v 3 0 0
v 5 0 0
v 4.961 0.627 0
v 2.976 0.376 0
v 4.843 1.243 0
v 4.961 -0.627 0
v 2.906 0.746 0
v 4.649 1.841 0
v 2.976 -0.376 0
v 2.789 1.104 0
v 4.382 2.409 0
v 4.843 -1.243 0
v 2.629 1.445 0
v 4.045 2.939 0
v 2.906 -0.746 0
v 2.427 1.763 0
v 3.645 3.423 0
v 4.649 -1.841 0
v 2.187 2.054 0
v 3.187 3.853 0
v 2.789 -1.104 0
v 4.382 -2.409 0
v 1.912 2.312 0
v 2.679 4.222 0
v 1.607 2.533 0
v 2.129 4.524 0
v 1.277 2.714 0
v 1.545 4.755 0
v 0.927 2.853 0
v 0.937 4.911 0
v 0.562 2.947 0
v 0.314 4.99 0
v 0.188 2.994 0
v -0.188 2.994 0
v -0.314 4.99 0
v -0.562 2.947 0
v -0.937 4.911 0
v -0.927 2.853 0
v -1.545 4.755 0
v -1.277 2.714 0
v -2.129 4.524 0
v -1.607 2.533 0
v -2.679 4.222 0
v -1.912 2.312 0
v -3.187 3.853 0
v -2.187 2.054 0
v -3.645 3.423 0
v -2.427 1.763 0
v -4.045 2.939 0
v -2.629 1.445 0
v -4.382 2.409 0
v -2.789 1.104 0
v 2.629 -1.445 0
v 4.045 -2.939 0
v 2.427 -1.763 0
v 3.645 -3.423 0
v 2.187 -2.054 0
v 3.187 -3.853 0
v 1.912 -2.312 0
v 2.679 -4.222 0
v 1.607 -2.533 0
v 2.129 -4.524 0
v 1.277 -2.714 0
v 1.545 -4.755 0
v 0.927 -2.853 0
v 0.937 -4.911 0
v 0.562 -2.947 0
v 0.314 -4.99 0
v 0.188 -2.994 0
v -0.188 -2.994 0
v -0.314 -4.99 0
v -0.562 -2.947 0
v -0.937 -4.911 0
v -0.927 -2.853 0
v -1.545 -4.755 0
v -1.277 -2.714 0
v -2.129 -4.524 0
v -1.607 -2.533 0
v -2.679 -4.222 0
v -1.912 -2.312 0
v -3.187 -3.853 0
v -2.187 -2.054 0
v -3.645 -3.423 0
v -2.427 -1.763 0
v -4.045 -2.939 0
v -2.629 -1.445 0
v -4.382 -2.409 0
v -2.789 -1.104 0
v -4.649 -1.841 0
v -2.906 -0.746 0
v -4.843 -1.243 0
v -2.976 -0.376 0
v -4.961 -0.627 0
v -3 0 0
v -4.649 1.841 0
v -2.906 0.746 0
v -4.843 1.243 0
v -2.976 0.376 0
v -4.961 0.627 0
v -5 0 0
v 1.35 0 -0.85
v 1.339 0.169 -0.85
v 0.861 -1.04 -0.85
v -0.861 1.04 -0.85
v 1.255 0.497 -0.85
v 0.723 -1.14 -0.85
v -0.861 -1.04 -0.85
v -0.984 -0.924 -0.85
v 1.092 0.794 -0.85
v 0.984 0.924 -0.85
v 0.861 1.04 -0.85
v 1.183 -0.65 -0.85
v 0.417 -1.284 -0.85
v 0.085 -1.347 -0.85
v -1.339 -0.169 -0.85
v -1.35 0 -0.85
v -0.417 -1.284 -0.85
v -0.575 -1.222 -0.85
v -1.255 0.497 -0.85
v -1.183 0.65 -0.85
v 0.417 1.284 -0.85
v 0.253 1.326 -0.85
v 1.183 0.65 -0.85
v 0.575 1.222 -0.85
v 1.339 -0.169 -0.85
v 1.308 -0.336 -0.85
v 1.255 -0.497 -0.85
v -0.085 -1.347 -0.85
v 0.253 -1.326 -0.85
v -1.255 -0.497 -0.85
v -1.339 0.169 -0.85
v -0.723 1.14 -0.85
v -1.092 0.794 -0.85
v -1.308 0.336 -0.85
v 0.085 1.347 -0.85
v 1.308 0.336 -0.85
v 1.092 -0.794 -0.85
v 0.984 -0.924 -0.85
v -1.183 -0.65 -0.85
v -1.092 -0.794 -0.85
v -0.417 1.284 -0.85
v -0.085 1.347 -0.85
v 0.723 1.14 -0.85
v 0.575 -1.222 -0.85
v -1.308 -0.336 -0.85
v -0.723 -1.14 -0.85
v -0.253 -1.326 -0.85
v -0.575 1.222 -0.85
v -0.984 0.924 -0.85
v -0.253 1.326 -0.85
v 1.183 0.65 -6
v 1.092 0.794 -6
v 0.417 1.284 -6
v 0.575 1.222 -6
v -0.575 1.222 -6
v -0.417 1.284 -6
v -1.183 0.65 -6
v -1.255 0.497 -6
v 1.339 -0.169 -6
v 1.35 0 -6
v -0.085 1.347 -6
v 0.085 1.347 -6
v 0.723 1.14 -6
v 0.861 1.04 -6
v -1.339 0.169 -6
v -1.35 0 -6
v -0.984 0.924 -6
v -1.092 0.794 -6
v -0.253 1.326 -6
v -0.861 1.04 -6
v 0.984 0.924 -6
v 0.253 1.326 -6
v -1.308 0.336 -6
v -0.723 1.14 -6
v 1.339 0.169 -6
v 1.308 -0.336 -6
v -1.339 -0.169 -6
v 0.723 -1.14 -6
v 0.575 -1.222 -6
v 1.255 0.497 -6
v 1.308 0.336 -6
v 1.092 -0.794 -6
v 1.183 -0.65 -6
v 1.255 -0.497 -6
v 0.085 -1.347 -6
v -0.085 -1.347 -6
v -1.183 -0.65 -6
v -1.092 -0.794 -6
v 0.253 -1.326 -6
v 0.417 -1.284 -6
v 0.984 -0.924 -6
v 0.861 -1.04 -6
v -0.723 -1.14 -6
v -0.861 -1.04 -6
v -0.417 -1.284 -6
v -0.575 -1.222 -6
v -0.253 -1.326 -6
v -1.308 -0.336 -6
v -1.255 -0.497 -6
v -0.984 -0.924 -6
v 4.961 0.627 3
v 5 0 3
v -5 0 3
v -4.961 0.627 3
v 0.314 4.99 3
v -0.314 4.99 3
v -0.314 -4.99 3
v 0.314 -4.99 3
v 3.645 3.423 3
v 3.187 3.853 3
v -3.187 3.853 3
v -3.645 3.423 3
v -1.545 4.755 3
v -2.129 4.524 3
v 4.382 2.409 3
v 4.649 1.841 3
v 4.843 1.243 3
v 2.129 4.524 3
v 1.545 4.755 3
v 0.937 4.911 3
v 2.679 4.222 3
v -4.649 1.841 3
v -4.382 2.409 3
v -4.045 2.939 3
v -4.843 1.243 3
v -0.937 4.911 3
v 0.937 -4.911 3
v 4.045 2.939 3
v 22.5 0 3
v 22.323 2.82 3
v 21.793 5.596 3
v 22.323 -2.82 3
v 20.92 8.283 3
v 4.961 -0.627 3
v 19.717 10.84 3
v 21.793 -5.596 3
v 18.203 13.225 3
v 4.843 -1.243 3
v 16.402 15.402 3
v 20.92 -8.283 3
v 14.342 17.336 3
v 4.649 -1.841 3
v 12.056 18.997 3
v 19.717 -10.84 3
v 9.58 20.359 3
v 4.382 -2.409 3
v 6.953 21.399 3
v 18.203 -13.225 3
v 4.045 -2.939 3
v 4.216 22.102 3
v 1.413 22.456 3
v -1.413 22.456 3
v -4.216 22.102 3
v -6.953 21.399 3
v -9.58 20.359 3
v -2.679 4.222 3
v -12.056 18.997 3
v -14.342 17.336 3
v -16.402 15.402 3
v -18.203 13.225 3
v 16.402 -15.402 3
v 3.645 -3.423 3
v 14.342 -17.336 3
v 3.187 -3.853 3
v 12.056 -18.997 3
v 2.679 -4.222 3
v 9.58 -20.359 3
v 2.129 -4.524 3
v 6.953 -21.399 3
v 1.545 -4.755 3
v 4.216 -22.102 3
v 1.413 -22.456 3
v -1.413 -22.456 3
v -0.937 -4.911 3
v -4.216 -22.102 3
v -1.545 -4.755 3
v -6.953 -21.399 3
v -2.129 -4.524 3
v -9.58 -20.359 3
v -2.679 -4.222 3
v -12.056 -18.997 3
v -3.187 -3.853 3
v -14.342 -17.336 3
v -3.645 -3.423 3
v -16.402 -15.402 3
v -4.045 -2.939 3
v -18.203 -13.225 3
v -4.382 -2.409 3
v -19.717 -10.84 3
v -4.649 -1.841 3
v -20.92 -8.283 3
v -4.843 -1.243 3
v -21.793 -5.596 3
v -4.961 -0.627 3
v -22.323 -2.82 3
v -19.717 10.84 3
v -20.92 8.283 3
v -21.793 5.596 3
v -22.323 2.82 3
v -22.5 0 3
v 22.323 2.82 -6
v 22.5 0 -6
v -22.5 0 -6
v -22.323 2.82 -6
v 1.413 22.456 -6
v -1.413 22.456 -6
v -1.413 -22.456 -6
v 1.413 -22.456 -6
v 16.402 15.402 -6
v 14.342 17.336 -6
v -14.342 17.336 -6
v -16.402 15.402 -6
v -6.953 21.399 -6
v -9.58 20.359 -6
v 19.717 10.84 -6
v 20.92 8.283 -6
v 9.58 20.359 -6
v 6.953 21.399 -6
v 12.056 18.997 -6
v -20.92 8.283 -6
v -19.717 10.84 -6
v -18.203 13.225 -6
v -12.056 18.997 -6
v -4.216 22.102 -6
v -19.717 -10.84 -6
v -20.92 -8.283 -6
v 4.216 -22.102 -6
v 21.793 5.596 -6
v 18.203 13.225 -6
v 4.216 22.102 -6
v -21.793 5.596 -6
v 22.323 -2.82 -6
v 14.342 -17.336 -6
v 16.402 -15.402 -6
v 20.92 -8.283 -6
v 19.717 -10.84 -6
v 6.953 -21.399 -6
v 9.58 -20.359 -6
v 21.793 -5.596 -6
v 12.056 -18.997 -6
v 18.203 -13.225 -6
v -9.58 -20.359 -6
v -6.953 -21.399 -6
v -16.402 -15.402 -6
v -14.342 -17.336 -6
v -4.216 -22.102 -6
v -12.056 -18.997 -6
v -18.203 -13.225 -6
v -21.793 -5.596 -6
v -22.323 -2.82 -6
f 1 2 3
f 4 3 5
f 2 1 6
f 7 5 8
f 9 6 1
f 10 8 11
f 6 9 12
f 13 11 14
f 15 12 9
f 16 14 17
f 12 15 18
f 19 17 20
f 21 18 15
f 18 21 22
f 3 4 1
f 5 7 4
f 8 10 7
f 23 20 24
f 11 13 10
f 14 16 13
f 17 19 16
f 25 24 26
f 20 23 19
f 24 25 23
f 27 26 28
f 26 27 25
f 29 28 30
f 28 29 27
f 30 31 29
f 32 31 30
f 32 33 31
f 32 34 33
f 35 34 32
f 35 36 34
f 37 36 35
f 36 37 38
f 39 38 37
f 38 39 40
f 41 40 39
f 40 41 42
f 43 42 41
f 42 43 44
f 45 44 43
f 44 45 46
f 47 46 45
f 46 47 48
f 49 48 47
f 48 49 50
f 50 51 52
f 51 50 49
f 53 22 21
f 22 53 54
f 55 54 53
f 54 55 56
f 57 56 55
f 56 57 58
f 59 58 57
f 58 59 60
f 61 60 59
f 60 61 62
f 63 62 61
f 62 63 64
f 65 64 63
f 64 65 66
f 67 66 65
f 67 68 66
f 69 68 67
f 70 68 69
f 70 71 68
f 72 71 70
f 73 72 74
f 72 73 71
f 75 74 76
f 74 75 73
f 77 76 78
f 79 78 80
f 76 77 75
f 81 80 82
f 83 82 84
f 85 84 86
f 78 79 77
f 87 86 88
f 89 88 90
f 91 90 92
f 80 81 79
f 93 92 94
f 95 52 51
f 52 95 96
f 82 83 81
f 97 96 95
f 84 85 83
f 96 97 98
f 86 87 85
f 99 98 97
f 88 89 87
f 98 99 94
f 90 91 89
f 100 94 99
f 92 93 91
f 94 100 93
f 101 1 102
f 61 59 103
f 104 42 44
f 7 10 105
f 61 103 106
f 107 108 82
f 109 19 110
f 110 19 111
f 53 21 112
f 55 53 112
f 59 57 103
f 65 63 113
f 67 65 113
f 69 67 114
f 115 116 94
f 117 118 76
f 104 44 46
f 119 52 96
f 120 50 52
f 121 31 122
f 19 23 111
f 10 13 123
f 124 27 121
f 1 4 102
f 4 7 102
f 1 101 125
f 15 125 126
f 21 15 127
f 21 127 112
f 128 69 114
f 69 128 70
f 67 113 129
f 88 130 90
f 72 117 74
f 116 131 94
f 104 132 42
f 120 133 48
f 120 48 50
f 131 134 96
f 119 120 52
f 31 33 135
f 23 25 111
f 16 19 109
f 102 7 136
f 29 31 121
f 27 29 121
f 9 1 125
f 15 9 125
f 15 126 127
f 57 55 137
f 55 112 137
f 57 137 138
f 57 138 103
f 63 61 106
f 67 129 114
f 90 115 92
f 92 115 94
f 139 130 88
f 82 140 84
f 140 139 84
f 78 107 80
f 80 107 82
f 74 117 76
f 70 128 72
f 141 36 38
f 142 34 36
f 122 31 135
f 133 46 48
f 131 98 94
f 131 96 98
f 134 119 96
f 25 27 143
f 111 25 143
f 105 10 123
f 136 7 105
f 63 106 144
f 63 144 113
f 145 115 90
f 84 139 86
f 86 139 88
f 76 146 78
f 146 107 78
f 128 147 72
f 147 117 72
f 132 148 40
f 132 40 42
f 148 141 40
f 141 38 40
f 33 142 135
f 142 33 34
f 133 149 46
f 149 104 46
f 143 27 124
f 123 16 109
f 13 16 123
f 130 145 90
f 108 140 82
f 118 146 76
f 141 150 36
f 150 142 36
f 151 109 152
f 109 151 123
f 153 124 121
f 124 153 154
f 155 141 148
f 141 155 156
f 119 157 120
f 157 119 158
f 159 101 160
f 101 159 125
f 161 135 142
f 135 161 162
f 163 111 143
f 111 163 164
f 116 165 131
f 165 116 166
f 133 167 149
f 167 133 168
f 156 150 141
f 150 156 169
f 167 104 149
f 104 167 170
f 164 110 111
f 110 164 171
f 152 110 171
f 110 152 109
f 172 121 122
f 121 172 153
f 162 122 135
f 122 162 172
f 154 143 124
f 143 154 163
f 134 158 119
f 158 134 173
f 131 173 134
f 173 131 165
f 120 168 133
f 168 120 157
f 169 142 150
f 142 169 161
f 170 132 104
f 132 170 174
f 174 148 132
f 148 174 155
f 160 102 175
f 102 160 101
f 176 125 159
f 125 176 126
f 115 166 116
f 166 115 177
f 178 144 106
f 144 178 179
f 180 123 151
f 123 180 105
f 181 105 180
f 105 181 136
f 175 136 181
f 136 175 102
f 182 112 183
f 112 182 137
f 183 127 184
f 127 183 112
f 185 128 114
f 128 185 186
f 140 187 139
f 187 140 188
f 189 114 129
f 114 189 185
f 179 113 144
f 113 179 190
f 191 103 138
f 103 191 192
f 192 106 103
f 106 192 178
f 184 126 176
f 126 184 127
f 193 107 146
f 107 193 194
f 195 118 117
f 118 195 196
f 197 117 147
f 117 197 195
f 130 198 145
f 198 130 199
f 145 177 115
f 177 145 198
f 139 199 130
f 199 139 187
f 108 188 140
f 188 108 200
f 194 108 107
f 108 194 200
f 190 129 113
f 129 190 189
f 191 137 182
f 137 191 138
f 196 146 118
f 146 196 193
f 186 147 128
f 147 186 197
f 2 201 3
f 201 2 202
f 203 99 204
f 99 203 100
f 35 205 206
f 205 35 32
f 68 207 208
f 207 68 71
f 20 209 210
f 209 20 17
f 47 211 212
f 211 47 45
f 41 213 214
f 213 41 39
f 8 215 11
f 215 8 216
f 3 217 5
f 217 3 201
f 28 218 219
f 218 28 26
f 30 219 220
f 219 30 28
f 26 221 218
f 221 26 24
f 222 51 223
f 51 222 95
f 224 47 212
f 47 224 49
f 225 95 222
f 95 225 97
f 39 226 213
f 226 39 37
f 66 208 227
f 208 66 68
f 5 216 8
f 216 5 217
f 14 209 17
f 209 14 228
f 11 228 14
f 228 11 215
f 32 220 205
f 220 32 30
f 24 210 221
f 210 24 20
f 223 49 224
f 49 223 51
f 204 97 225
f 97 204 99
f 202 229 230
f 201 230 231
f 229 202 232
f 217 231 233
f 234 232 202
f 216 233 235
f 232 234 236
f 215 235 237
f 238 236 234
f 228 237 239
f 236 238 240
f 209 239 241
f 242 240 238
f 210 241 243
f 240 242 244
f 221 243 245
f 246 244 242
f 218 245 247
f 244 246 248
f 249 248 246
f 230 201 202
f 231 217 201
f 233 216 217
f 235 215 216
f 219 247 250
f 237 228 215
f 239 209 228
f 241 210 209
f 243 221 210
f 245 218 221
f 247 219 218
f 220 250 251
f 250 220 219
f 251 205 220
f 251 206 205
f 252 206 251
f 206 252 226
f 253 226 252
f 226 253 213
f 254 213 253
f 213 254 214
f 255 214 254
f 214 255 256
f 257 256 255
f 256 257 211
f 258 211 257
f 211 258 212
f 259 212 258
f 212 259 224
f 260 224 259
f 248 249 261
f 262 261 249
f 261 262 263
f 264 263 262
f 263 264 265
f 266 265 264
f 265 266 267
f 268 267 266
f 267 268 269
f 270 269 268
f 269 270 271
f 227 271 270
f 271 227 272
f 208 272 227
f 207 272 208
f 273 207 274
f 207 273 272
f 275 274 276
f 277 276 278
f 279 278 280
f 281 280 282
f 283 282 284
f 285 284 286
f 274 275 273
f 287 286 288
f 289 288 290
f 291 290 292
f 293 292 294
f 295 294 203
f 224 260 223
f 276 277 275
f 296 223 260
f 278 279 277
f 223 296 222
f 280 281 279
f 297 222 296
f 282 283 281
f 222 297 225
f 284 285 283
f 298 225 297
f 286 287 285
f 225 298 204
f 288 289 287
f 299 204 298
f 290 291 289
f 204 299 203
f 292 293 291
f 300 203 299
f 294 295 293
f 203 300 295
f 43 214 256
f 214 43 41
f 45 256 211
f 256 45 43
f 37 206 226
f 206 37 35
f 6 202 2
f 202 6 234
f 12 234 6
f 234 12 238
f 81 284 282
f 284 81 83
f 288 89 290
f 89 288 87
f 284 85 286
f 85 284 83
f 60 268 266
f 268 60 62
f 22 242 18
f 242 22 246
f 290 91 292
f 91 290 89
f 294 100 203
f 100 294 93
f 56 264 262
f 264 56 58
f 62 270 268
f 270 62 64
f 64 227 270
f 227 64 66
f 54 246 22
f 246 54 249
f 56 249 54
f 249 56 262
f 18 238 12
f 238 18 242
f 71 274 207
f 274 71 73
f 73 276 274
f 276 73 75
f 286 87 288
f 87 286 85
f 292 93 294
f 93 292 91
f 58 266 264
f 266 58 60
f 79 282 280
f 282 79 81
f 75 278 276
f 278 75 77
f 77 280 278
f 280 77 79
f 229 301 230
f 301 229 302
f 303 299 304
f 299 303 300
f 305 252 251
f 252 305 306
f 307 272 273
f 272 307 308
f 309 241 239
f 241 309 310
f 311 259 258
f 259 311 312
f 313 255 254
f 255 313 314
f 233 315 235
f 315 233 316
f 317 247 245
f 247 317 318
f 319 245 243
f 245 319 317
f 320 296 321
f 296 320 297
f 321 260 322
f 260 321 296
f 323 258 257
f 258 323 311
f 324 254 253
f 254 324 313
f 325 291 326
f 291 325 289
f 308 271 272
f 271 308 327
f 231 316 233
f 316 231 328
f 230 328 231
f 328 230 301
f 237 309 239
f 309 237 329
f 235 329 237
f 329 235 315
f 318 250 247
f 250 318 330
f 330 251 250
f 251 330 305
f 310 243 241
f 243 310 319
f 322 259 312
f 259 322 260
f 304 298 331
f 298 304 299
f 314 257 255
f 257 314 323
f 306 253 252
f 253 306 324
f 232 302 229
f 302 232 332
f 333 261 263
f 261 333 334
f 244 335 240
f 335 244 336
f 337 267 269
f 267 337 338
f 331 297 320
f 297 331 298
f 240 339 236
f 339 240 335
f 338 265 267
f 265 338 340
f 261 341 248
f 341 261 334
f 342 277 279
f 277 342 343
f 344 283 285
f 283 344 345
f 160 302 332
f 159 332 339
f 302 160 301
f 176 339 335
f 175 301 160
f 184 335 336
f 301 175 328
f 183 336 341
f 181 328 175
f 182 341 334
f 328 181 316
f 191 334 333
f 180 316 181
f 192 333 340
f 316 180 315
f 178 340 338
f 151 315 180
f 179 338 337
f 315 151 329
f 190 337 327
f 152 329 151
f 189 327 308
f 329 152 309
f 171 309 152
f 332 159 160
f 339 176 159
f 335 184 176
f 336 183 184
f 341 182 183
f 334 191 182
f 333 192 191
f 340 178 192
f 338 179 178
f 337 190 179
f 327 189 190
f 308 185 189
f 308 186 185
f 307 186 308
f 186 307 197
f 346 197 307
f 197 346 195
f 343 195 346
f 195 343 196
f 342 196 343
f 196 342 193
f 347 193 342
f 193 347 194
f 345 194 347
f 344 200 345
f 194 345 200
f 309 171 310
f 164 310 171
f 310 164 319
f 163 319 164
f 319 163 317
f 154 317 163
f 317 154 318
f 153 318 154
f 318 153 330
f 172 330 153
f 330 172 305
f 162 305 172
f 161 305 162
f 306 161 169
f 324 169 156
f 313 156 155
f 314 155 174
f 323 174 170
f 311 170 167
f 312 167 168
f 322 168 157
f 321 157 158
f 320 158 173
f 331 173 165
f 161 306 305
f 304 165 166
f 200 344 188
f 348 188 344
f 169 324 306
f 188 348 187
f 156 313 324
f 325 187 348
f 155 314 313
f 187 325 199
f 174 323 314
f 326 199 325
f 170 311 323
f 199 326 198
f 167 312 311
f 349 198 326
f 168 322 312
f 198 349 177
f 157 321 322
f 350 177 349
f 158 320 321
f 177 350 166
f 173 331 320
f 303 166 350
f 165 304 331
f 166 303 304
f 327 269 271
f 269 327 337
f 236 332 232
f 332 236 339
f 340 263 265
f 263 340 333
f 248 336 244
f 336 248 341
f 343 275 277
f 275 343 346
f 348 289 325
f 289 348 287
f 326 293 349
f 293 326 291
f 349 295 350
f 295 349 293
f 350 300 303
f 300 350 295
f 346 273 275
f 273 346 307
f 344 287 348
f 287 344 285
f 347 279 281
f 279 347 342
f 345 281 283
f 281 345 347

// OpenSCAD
$fn = 50;

difference() {
	union() {
		translate(v = [0, 0, -6.0]) {
			cylinder(h = 9, r = 22.5);
		}
	}
	union() {
		translate(v = [0, 0, 0]) {
			rotate(a = [0, 0, 0]) {
				difference() {
					union() {
						translate(v = [0, 0, -9.0]) {
							cylinder(h = 9, r = 1.0);
						}
						translate(v = [0, 0, -0.85]) {
							cylinder(h = 0.85, r1 = 1.35, r2 = 3.0);
						}
						translate(v = [0, 0, -9.0]) {
							cylinder(h = 9, r = 1.35);
						}
						translate(v = [0, 0, -9.0]) {
							cylinder(h = 9, r = 1.0);
						}
					}
					union();
				}
			}
		}
		#cylinder(h = 3, r = 5.0);
	}
}
